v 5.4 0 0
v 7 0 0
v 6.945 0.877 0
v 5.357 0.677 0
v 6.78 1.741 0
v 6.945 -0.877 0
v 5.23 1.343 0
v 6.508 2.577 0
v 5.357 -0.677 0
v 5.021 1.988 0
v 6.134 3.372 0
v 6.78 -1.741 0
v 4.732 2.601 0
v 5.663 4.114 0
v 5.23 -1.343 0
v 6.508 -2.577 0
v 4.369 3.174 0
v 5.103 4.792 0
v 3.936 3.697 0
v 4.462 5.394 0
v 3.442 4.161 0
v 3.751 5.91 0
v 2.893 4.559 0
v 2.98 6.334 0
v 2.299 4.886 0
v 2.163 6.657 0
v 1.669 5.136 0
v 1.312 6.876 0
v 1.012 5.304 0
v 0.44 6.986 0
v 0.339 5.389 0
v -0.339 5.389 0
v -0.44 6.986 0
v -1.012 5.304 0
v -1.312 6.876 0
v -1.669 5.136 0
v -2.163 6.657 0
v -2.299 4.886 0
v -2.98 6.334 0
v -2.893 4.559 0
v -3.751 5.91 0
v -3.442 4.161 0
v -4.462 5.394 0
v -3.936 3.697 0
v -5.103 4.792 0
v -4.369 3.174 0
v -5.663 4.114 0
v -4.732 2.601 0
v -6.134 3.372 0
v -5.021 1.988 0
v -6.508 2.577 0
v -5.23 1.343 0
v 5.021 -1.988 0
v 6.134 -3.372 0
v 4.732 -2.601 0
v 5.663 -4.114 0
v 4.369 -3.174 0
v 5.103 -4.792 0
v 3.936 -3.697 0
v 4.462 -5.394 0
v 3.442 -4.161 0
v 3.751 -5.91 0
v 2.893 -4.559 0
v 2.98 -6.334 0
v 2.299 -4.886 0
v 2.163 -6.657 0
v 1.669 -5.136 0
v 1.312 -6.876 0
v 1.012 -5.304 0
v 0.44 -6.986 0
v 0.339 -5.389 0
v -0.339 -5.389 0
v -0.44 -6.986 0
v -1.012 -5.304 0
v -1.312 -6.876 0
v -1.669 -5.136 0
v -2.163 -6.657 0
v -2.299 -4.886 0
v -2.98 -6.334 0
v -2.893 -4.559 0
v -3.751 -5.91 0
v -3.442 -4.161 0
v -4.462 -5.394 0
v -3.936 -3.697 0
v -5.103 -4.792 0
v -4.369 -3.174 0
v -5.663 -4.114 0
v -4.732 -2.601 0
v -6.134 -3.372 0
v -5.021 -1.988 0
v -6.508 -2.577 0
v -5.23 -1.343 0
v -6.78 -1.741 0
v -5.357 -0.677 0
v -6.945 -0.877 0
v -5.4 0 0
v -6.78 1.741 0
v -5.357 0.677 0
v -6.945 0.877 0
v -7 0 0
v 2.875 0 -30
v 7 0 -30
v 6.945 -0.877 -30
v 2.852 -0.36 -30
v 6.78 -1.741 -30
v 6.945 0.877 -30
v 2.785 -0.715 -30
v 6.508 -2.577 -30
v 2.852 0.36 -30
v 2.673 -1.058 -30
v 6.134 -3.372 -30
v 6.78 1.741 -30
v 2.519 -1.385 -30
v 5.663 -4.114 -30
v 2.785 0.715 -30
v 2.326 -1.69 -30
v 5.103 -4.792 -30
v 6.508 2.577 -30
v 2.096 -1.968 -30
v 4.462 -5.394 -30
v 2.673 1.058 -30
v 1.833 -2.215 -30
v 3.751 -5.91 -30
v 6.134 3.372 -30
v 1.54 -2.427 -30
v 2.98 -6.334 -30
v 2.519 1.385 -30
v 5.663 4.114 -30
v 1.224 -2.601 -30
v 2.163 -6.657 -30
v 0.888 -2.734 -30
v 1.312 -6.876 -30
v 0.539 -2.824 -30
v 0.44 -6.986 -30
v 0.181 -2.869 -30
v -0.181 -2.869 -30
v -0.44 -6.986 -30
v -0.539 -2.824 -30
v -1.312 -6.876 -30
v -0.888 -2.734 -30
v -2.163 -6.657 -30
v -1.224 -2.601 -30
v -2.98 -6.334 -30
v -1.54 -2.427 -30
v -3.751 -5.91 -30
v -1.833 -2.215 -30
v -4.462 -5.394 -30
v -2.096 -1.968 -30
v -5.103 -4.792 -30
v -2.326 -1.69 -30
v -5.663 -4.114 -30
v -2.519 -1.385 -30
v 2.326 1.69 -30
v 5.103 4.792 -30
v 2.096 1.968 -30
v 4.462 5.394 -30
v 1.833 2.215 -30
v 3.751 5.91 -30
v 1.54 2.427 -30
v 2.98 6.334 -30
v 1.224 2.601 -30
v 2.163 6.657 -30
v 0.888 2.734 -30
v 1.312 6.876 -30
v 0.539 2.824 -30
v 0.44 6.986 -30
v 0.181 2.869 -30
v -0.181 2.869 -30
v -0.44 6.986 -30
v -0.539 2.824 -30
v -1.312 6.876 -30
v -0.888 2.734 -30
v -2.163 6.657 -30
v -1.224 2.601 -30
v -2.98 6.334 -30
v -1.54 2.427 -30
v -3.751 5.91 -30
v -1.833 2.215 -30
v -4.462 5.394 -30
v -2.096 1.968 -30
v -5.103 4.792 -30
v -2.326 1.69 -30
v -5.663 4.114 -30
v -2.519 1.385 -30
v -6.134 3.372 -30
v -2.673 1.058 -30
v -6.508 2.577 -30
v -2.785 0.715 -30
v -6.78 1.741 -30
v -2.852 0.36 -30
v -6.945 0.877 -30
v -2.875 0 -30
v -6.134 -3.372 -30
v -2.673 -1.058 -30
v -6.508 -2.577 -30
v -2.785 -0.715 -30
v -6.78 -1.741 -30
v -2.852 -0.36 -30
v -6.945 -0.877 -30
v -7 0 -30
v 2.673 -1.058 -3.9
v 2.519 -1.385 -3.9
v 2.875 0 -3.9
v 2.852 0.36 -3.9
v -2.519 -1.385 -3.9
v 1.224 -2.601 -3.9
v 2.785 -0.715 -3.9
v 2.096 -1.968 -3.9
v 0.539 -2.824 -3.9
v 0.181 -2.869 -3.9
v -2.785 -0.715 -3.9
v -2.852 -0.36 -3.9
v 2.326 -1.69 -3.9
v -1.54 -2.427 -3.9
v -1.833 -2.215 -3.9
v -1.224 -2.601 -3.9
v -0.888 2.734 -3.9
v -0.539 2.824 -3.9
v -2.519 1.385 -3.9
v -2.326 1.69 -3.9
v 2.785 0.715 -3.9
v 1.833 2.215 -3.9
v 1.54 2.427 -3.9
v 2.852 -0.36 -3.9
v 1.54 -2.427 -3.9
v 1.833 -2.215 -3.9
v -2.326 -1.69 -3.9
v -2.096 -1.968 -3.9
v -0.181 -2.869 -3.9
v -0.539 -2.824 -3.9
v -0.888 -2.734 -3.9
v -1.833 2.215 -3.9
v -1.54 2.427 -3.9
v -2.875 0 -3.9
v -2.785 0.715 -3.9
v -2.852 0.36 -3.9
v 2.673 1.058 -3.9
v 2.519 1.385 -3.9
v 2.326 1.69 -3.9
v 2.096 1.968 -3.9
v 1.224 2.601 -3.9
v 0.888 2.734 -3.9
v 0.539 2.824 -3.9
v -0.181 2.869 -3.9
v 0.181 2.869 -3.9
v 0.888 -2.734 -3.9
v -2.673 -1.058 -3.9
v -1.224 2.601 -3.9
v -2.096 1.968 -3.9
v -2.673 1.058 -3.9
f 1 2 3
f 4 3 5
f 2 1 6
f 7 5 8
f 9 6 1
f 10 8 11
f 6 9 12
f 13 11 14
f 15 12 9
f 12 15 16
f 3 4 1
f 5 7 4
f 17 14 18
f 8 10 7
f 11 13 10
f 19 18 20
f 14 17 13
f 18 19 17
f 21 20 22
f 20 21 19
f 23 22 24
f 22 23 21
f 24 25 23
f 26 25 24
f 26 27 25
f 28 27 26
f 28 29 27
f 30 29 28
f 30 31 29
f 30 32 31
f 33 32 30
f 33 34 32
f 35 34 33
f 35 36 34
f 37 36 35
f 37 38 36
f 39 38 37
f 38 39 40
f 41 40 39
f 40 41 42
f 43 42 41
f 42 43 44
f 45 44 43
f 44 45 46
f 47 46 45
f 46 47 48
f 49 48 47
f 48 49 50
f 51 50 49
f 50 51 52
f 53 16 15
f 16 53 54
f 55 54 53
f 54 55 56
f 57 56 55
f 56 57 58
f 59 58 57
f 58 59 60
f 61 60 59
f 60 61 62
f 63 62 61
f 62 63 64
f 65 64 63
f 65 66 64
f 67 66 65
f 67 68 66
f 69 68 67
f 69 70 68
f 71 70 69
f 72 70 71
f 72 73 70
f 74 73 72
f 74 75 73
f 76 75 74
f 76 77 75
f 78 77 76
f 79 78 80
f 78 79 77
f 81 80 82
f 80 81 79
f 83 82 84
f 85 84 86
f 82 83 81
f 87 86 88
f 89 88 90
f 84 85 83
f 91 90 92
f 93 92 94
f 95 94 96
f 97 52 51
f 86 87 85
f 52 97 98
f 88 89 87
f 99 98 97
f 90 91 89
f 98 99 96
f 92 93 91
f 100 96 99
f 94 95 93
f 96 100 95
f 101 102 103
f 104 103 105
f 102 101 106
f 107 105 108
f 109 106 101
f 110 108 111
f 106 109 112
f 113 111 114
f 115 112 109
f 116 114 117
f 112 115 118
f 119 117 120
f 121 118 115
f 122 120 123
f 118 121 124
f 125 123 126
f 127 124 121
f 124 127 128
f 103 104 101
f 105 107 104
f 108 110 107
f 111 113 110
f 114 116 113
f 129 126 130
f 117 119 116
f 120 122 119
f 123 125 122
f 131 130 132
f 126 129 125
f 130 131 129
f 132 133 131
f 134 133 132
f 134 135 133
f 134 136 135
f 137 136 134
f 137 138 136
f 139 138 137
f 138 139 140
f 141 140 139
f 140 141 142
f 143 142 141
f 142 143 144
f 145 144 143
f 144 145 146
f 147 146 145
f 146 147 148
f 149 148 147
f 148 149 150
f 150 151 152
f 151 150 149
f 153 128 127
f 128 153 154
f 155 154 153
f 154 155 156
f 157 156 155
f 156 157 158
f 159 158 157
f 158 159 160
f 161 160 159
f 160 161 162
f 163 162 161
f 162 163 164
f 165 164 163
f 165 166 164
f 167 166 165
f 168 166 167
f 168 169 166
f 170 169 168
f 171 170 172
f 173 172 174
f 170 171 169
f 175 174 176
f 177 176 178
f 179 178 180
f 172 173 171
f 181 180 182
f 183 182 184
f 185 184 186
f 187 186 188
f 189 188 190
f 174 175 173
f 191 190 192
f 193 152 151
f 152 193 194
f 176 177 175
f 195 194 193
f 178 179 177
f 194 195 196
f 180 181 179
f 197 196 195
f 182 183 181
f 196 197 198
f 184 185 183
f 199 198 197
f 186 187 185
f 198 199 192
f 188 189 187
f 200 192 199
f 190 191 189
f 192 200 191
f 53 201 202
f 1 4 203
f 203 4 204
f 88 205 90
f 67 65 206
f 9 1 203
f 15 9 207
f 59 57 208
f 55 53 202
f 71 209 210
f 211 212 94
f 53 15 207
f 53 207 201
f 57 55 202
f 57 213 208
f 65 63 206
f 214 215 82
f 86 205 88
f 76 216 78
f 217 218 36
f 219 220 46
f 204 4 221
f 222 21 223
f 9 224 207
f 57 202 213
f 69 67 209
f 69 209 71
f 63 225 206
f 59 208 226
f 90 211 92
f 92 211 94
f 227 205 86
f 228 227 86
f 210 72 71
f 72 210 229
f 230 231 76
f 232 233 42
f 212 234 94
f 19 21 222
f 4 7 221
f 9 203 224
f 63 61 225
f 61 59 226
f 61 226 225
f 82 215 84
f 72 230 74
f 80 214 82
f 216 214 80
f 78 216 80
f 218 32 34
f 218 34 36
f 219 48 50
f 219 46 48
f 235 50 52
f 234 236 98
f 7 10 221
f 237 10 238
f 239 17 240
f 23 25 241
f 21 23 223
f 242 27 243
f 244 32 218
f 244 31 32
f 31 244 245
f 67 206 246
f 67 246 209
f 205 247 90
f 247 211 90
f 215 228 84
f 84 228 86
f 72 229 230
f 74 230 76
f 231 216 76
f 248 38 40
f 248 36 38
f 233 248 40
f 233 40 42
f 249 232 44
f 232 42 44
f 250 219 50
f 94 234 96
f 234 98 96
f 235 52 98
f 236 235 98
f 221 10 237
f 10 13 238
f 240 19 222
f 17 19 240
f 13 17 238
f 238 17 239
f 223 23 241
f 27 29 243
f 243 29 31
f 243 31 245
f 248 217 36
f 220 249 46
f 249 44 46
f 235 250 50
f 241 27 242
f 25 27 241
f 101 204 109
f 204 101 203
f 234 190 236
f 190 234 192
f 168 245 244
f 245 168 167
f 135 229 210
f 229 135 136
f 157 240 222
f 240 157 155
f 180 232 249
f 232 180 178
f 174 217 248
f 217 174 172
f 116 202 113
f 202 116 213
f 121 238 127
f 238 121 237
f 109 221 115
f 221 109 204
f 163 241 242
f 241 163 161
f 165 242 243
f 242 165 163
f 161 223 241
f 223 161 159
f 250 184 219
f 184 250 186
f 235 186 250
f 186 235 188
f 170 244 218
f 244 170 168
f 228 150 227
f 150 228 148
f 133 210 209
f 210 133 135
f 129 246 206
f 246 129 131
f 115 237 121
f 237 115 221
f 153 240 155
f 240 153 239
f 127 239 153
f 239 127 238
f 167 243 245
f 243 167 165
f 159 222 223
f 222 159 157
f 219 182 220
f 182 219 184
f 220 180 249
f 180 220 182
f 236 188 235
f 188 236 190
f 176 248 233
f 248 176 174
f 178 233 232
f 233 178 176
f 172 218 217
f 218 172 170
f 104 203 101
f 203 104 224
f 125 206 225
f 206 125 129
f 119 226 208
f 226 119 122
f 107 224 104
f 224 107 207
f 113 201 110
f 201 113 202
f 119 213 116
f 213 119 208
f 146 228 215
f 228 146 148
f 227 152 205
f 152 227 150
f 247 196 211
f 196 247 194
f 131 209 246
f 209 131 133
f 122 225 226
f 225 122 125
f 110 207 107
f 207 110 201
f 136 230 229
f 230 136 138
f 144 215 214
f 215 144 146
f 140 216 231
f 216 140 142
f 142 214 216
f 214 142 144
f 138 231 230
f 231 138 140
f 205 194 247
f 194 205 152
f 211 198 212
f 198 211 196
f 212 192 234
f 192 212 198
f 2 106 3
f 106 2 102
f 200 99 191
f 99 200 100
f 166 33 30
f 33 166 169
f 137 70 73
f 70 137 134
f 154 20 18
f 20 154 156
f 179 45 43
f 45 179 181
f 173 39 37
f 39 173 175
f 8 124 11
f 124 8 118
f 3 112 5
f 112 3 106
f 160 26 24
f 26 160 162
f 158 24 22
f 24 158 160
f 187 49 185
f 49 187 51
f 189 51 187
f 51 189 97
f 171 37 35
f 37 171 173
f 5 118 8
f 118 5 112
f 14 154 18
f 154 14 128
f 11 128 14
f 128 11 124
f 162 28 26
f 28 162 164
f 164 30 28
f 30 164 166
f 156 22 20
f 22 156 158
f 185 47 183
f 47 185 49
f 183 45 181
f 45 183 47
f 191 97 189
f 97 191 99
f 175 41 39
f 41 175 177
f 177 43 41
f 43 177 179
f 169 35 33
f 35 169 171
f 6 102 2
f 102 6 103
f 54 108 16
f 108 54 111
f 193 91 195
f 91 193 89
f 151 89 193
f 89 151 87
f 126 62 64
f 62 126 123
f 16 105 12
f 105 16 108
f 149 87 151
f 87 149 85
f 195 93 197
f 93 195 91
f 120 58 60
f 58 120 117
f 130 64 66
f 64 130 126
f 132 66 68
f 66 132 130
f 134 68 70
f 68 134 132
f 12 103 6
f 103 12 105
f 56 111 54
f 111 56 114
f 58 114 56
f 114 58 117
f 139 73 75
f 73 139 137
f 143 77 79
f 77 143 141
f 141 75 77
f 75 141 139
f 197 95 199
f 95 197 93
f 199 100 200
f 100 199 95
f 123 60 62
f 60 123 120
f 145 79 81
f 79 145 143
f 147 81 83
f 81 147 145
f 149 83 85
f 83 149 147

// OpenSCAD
$fn = 50;


difference() {
	union() {
		translate(v = [0, 0, -30.0000000000]) {
			cylinder(h = 30, r = 7.0000000000);
		}
	}
	union() {
		translate(v = [0, 0, 0]) {
			rotate(a = [0, 0, 0]) {
				difference() {
					union() {
						#translate(v = [0, 0, -30.0000000000]) {
							cylinder(h = 30, r = 2.6000000000);
						}
						#translate(v = [0, 0, -3.9000000000]) {
							cylinder(h = 3.9000000000, r = 7.0000000000, r1 = 2.8750000000, r2 = 5.4000000000);
						}
						#translate(v = [0, 0, -30.0000000000]) {
							cylinder(h = 30, r = 2.8750000000);
						}
						#translate(v = [0, 0, -30.0000000000]) {
							cylinder(h = 30, r = 2.6000000000);
						}
					}
					union();
				}
			}
		}
	}
}
